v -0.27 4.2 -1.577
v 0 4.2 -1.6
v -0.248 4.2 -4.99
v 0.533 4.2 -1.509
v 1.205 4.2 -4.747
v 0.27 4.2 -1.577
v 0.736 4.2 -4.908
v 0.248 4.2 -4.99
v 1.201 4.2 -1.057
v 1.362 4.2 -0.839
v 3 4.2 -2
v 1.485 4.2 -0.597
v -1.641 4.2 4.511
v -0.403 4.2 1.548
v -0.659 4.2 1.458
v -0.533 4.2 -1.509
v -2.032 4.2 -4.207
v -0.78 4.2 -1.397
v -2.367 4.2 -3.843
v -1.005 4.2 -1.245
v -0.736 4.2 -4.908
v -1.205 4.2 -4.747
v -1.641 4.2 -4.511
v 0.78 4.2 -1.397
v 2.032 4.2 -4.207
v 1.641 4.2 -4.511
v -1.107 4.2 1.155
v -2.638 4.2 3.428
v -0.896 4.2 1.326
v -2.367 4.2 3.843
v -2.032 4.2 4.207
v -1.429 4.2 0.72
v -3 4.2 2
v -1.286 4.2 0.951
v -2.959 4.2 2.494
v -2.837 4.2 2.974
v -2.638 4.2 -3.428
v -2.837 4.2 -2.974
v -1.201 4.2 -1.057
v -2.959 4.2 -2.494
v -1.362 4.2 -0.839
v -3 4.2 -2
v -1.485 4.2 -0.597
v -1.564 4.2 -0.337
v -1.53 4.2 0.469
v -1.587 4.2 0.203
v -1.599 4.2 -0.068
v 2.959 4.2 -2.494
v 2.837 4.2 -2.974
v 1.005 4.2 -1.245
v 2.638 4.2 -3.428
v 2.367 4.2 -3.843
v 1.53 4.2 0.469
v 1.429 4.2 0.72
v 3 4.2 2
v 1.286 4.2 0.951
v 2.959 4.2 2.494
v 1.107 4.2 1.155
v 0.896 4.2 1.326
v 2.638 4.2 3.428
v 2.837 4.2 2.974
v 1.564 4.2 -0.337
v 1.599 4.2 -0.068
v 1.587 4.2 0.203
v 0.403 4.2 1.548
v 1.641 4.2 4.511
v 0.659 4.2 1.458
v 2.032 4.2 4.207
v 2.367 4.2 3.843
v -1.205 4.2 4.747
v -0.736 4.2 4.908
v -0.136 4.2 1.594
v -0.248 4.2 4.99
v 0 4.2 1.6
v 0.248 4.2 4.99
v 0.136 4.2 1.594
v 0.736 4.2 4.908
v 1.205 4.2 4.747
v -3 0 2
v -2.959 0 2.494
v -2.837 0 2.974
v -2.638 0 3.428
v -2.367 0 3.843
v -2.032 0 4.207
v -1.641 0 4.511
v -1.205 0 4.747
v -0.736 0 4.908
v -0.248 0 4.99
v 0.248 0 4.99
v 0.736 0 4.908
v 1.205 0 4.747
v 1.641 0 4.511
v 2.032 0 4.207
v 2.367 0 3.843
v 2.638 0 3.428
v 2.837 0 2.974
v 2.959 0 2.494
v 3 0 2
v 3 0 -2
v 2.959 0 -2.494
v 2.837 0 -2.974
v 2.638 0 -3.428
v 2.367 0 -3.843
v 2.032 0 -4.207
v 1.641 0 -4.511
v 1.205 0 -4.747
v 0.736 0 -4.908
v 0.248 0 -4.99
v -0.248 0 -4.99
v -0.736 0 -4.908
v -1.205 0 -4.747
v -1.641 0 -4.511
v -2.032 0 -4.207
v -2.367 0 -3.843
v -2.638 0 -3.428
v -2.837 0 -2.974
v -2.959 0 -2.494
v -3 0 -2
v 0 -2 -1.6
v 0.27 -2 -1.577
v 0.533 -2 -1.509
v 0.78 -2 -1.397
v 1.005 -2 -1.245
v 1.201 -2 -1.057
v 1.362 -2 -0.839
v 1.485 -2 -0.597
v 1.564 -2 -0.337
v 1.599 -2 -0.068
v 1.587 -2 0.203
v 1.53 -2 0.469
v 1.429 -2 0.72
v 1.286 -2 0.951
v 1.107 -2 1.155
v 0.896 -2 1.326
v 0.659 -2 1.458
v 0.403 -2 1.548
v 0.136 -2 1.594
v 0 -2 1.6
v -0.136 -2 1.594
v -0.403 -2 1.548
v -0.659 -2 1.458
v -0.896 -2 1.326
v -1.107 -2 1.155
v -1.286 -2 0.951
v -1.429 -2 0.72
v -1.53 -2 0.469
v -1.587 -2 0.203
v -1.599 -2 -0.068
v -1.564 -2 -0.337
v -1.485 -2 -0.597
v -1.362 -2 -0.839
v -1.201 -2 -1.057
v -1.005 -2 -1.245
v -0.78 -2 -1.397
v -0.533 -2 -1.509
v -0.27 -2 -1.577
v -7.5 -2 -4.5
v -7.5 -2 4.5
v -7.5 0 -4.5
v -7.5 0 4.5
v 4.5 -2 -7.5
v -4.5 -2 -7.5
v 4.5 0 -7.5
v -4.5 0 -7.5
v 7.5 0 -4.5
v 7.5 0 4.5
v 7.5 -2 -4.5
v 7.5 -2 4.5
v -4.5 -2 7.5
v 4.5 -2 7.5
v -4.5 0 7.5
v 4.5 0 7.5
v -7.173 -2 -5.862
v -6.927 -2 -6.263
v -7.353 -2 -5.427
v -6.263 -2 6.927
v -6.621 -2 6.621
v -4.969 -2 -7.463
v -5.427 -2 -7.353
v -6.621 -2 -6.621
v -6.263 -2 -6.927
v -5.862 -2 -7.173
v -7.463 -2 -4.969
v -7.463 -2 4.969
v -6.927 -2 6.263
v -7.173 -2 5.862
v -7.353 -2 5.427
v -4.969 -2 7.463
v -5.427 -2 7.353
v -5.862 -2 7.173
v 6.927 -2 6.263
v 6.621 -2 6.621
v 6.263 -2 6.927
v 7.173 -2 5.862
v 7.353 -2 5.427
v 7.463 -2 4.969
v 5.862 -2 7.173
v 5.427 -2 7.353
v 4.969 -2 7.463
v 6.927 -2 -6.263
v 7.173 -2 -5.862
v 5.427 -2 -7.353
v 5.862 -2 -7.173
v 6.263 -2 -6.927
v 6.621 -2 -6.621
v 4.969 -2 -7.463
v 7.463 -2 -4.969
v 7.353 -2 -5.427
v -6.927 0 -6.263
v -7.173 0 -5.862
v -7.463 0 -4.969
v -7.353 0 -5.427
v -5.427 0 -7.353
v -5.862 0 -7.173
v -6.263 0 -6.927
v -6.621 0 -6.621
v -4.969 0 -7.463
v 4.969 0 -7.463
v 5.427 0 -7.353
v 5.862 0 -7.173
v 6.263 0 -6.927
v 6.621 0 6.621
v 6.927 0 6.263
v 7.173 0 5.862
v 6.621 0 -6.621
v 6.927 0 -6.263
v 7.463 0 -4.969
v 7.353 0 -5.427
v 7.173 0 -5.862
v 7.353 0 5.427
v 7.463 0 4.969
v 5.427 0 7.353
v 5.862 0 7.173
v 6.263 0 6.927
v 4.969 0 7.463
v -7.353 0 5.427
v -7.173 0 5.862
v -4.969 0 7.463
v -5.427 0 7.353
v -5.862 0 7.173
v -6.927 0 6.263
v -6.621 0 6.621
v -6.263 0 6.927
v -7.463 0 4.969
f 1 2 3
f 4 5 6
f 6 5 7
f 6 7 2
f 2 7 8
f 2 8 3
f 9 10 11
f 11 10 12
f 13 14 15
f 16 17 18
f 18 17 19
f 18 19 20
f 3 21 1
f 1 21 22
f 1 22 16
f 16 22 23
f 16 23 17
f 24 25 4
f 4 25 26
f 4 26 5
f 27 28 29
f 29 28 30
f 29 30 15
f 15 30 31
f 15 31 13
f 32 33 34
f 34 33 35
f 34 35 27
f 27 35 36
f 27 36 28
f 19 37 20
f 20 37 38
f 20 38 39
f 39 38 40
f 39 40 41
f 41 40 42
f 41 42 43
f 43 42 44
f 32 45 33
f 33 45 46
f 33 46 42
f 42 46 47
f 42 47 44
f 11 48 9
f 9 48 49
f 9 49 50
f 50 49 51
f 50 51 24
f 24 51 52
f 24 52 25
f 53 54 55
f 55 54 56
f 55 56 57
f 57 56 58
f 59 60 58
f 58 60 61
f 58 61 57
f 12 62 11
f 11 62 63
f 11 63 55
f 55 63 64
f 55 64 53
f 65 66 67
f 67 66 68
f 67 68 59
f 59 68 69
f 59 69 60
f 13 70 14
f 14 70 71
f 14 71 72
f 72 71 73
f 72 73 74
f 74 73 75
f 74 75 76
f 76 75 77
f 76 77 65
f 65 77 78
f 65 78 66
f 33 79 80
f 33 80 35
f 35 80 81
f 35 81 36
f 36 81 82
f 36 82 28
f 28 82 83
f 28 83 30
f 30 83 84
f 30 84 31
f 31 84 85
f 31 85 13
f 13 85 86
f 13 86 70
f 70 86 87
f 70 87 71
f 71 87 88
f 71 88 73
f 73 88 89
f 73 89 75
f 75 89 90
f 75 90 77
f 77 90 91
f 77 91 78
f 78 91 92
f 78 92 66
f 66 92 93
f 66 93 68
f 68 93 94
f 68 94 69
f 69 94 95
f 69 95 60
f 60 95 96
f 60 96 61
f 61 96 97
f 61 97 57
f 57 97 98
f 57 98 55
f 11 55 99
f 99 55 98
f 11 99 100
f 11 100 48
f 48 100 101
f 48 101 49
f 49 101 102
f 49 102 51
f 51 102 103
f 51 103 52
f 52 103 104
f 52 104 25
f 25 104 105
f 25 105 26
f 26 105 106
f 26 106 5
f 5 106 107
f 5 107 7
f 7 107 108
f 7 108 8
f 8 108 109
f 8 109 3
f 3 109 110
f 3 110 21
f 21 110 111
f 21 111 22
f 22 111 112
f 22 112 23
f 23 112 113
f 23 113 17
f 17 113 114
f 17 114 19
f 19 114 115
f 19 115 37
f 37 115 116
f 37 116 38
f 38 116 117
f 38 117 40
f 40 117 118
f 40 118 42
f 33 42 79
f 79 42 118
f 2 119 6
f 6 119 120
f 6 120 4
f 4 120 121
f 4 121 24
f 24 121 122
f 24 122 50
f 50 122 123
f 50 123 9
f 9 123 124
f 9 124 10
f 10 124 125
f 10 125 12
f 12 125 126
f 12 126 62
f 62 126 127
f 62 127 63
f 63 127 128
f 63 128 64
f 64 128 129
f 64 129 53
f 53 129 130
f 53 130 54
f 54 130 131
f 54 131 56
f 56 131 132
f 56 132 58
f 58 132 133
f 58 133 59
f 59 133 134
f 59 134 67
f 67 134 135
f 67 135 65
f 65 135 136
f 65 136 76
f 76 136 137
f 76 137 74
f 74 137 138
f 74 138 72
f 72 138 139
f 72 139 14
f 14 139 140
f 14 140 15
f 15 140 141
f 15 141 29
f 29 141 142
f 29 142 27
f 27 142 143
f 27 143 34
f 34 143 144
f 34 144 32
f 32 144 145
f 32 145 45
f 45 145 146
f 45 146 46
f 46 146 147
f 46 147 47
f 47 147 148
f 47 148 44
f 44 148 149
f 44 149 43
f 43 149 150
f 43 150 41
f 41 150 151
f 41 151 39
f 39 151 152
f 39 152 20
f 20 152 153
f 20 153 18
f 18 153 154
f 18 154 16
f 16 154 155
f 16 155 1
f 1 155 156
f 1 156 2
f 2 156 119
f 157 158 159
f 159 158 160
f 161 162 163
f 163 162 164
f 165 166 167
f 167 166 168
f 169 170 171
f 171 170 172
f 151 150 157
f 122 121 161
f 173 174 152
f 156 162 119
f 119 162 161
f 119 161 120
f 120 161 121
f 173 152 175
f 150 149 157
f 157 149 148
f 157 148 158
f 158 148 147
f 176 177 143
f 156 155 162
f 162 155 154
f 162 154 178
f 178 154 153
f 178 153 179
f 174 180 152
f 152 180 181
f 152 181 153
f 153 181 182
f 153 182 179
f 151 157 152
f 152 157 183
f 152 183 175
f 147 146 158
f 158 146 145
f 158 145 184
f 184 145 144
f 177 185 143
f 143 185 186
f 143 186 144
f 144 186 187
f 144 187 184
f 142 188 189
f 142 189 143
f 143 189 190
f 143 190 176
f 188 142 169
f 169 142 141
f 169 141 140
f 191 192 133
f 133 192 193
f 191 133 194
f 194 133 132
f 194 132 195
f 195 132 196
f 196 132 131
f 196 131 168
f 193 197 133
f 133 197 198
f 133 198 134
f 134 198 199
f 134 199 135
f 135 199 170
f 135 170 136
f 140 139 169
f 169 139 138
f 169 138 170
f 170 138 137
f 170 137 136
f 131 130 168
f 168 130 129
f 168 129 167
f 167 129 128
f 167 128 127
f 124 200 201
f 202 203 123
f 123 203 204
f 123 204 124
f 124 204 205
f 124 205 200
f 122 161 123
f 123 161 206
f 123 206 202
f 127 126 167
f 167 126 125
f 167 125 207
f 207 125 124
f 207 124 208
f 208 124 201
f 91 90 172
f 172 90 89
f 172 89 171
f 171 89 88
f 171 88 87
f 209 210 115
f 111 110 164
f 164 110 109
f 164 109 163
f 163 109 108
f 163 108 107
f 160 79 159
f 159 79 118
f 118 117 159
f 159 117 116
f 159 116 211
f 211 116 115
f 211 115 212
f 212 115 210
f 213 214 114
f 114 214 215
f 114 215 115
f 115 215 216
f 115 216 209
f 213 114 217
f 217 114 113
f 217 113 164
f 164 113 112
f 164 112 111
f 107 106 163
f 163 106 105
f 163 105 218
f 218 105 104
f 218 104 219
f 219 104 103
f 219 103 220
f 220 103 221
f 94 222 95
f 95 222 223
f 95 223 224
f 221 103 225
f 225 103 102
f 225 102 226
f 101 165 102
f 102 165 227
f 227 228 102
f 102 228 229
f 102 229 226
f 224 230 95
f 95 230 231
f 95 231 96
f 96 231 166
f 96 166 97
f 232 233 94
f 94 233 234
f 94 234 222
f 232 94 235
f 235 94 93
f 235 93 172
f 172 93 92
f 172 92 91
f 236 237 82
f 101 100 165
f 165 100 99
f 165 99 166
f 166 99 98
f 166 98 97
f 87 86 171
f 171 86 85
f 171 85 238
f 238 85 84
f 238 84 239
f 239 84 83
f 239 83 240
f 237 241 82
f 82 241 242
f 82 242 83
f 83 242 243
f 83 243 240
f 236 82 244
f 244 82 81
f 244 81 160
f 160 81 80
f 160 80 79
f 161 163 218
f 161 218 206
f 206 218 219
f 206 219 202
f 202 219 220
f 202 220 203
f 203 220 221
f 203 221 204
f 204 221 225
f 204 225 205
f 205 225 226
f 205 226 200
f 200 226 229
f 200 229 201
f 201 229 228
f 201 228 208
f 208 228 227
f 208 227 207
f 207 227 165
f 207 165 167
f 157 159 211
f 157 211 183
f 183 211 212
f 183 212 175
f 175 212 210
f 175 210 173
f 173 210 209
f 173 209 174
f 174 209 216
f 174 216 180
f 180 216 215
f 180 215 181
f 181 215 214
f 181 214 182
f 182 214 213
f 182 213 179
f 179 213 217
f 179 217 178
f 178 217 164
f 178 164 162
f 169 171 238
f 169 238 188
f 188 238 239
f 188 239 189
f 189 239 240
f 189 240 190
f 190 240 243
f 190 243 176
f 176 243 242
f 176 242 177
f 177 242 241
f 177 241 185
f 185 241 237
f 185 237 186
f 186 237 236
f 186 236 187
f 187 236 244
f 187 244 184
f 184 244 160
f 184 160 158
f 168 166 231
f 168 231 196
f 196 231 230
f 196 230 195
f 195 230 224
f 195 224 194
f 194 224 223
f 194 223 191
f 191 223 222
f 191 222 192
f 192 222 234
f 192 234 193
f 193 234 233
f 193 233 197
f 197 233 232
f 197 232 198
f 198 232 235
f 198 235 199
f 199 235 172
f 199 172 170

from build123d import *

# Parameters (mm, degrees)
SKETCH1_R               = 1.6
BOSS_EXTRUDE1_DEPTH     = 4.2
SKETCH2_W               = 15
SKETCH2_H               = 15
BOSS_EXTRUDE2_DEPTH     = 2
FILLET1_R               = 3
SKETCH3_R               = 1.6
CUT_EXTRUDE1_DEPTH      = 5.2
CUT_EXTRUDE1_DEPTH_BACK = 3


with BuildPart() as part:
    # Sketch1 → Boss-Extrude1 (new body)
    with BuildSketch(Plane(origin=(0, 0, 0), x_dir=(1, 0, 0), z_dir=(0, 1, 0))):
        with BuildLine():
            Line((-3, -2), (-3, 2))
            ThreePointArc((-3, 2), (0, 5), (3, 2))
            Line((3, 2), (3, -2))
            ThreePointArc((3, -2), (0, -5), (-3, -2))
        make_face()
        Circle(SKETCH1_R, mode=Mode.SUBTRACT)
    extrude(amount=BOSS_EXTRUDE1_DEPTH)

    # Sketch2 → Boss-Extrude2 (add)
    with BuildSketch(Plane.XZ):
        Rectangle(SKETCH2_W, SKETCH2_H)
    extrude(amount=BOSS_EXTRUDE2_DEPTH)

    # Fillet1
    fillet1_edges = [part.edges().sort_by_distance(p)[0] for p in [
        (-7.5, -1, 7.5),
        (-7.5, -1, -7.5),
        (7.5, -1, -7.5),
        (7.5, -1, 7.5),
    ]]
    fillet(fillet1_edges, radius=FILLET1_R)

    # Sketch3 → Cut-Extrude1 (cut, two sides)
    with BuildSketch(Plane(origin=(0, 0, 0), x_dir=(1, 0, 0), z_dir=(0, 1, 0))) as cut_extrude1_sk:
        Circle(SKETCH3_R)
    extrude(amount=CUT_EXTRUDE1_DEPTH, mode=Mode.SUBTRACT)
    extrude(cut_extrude1_sk.sketch, amount=-CUT_EXTRUDE1_DEPTH_BACK, mode=Mode.SUBTRACT)


solid = part.part
